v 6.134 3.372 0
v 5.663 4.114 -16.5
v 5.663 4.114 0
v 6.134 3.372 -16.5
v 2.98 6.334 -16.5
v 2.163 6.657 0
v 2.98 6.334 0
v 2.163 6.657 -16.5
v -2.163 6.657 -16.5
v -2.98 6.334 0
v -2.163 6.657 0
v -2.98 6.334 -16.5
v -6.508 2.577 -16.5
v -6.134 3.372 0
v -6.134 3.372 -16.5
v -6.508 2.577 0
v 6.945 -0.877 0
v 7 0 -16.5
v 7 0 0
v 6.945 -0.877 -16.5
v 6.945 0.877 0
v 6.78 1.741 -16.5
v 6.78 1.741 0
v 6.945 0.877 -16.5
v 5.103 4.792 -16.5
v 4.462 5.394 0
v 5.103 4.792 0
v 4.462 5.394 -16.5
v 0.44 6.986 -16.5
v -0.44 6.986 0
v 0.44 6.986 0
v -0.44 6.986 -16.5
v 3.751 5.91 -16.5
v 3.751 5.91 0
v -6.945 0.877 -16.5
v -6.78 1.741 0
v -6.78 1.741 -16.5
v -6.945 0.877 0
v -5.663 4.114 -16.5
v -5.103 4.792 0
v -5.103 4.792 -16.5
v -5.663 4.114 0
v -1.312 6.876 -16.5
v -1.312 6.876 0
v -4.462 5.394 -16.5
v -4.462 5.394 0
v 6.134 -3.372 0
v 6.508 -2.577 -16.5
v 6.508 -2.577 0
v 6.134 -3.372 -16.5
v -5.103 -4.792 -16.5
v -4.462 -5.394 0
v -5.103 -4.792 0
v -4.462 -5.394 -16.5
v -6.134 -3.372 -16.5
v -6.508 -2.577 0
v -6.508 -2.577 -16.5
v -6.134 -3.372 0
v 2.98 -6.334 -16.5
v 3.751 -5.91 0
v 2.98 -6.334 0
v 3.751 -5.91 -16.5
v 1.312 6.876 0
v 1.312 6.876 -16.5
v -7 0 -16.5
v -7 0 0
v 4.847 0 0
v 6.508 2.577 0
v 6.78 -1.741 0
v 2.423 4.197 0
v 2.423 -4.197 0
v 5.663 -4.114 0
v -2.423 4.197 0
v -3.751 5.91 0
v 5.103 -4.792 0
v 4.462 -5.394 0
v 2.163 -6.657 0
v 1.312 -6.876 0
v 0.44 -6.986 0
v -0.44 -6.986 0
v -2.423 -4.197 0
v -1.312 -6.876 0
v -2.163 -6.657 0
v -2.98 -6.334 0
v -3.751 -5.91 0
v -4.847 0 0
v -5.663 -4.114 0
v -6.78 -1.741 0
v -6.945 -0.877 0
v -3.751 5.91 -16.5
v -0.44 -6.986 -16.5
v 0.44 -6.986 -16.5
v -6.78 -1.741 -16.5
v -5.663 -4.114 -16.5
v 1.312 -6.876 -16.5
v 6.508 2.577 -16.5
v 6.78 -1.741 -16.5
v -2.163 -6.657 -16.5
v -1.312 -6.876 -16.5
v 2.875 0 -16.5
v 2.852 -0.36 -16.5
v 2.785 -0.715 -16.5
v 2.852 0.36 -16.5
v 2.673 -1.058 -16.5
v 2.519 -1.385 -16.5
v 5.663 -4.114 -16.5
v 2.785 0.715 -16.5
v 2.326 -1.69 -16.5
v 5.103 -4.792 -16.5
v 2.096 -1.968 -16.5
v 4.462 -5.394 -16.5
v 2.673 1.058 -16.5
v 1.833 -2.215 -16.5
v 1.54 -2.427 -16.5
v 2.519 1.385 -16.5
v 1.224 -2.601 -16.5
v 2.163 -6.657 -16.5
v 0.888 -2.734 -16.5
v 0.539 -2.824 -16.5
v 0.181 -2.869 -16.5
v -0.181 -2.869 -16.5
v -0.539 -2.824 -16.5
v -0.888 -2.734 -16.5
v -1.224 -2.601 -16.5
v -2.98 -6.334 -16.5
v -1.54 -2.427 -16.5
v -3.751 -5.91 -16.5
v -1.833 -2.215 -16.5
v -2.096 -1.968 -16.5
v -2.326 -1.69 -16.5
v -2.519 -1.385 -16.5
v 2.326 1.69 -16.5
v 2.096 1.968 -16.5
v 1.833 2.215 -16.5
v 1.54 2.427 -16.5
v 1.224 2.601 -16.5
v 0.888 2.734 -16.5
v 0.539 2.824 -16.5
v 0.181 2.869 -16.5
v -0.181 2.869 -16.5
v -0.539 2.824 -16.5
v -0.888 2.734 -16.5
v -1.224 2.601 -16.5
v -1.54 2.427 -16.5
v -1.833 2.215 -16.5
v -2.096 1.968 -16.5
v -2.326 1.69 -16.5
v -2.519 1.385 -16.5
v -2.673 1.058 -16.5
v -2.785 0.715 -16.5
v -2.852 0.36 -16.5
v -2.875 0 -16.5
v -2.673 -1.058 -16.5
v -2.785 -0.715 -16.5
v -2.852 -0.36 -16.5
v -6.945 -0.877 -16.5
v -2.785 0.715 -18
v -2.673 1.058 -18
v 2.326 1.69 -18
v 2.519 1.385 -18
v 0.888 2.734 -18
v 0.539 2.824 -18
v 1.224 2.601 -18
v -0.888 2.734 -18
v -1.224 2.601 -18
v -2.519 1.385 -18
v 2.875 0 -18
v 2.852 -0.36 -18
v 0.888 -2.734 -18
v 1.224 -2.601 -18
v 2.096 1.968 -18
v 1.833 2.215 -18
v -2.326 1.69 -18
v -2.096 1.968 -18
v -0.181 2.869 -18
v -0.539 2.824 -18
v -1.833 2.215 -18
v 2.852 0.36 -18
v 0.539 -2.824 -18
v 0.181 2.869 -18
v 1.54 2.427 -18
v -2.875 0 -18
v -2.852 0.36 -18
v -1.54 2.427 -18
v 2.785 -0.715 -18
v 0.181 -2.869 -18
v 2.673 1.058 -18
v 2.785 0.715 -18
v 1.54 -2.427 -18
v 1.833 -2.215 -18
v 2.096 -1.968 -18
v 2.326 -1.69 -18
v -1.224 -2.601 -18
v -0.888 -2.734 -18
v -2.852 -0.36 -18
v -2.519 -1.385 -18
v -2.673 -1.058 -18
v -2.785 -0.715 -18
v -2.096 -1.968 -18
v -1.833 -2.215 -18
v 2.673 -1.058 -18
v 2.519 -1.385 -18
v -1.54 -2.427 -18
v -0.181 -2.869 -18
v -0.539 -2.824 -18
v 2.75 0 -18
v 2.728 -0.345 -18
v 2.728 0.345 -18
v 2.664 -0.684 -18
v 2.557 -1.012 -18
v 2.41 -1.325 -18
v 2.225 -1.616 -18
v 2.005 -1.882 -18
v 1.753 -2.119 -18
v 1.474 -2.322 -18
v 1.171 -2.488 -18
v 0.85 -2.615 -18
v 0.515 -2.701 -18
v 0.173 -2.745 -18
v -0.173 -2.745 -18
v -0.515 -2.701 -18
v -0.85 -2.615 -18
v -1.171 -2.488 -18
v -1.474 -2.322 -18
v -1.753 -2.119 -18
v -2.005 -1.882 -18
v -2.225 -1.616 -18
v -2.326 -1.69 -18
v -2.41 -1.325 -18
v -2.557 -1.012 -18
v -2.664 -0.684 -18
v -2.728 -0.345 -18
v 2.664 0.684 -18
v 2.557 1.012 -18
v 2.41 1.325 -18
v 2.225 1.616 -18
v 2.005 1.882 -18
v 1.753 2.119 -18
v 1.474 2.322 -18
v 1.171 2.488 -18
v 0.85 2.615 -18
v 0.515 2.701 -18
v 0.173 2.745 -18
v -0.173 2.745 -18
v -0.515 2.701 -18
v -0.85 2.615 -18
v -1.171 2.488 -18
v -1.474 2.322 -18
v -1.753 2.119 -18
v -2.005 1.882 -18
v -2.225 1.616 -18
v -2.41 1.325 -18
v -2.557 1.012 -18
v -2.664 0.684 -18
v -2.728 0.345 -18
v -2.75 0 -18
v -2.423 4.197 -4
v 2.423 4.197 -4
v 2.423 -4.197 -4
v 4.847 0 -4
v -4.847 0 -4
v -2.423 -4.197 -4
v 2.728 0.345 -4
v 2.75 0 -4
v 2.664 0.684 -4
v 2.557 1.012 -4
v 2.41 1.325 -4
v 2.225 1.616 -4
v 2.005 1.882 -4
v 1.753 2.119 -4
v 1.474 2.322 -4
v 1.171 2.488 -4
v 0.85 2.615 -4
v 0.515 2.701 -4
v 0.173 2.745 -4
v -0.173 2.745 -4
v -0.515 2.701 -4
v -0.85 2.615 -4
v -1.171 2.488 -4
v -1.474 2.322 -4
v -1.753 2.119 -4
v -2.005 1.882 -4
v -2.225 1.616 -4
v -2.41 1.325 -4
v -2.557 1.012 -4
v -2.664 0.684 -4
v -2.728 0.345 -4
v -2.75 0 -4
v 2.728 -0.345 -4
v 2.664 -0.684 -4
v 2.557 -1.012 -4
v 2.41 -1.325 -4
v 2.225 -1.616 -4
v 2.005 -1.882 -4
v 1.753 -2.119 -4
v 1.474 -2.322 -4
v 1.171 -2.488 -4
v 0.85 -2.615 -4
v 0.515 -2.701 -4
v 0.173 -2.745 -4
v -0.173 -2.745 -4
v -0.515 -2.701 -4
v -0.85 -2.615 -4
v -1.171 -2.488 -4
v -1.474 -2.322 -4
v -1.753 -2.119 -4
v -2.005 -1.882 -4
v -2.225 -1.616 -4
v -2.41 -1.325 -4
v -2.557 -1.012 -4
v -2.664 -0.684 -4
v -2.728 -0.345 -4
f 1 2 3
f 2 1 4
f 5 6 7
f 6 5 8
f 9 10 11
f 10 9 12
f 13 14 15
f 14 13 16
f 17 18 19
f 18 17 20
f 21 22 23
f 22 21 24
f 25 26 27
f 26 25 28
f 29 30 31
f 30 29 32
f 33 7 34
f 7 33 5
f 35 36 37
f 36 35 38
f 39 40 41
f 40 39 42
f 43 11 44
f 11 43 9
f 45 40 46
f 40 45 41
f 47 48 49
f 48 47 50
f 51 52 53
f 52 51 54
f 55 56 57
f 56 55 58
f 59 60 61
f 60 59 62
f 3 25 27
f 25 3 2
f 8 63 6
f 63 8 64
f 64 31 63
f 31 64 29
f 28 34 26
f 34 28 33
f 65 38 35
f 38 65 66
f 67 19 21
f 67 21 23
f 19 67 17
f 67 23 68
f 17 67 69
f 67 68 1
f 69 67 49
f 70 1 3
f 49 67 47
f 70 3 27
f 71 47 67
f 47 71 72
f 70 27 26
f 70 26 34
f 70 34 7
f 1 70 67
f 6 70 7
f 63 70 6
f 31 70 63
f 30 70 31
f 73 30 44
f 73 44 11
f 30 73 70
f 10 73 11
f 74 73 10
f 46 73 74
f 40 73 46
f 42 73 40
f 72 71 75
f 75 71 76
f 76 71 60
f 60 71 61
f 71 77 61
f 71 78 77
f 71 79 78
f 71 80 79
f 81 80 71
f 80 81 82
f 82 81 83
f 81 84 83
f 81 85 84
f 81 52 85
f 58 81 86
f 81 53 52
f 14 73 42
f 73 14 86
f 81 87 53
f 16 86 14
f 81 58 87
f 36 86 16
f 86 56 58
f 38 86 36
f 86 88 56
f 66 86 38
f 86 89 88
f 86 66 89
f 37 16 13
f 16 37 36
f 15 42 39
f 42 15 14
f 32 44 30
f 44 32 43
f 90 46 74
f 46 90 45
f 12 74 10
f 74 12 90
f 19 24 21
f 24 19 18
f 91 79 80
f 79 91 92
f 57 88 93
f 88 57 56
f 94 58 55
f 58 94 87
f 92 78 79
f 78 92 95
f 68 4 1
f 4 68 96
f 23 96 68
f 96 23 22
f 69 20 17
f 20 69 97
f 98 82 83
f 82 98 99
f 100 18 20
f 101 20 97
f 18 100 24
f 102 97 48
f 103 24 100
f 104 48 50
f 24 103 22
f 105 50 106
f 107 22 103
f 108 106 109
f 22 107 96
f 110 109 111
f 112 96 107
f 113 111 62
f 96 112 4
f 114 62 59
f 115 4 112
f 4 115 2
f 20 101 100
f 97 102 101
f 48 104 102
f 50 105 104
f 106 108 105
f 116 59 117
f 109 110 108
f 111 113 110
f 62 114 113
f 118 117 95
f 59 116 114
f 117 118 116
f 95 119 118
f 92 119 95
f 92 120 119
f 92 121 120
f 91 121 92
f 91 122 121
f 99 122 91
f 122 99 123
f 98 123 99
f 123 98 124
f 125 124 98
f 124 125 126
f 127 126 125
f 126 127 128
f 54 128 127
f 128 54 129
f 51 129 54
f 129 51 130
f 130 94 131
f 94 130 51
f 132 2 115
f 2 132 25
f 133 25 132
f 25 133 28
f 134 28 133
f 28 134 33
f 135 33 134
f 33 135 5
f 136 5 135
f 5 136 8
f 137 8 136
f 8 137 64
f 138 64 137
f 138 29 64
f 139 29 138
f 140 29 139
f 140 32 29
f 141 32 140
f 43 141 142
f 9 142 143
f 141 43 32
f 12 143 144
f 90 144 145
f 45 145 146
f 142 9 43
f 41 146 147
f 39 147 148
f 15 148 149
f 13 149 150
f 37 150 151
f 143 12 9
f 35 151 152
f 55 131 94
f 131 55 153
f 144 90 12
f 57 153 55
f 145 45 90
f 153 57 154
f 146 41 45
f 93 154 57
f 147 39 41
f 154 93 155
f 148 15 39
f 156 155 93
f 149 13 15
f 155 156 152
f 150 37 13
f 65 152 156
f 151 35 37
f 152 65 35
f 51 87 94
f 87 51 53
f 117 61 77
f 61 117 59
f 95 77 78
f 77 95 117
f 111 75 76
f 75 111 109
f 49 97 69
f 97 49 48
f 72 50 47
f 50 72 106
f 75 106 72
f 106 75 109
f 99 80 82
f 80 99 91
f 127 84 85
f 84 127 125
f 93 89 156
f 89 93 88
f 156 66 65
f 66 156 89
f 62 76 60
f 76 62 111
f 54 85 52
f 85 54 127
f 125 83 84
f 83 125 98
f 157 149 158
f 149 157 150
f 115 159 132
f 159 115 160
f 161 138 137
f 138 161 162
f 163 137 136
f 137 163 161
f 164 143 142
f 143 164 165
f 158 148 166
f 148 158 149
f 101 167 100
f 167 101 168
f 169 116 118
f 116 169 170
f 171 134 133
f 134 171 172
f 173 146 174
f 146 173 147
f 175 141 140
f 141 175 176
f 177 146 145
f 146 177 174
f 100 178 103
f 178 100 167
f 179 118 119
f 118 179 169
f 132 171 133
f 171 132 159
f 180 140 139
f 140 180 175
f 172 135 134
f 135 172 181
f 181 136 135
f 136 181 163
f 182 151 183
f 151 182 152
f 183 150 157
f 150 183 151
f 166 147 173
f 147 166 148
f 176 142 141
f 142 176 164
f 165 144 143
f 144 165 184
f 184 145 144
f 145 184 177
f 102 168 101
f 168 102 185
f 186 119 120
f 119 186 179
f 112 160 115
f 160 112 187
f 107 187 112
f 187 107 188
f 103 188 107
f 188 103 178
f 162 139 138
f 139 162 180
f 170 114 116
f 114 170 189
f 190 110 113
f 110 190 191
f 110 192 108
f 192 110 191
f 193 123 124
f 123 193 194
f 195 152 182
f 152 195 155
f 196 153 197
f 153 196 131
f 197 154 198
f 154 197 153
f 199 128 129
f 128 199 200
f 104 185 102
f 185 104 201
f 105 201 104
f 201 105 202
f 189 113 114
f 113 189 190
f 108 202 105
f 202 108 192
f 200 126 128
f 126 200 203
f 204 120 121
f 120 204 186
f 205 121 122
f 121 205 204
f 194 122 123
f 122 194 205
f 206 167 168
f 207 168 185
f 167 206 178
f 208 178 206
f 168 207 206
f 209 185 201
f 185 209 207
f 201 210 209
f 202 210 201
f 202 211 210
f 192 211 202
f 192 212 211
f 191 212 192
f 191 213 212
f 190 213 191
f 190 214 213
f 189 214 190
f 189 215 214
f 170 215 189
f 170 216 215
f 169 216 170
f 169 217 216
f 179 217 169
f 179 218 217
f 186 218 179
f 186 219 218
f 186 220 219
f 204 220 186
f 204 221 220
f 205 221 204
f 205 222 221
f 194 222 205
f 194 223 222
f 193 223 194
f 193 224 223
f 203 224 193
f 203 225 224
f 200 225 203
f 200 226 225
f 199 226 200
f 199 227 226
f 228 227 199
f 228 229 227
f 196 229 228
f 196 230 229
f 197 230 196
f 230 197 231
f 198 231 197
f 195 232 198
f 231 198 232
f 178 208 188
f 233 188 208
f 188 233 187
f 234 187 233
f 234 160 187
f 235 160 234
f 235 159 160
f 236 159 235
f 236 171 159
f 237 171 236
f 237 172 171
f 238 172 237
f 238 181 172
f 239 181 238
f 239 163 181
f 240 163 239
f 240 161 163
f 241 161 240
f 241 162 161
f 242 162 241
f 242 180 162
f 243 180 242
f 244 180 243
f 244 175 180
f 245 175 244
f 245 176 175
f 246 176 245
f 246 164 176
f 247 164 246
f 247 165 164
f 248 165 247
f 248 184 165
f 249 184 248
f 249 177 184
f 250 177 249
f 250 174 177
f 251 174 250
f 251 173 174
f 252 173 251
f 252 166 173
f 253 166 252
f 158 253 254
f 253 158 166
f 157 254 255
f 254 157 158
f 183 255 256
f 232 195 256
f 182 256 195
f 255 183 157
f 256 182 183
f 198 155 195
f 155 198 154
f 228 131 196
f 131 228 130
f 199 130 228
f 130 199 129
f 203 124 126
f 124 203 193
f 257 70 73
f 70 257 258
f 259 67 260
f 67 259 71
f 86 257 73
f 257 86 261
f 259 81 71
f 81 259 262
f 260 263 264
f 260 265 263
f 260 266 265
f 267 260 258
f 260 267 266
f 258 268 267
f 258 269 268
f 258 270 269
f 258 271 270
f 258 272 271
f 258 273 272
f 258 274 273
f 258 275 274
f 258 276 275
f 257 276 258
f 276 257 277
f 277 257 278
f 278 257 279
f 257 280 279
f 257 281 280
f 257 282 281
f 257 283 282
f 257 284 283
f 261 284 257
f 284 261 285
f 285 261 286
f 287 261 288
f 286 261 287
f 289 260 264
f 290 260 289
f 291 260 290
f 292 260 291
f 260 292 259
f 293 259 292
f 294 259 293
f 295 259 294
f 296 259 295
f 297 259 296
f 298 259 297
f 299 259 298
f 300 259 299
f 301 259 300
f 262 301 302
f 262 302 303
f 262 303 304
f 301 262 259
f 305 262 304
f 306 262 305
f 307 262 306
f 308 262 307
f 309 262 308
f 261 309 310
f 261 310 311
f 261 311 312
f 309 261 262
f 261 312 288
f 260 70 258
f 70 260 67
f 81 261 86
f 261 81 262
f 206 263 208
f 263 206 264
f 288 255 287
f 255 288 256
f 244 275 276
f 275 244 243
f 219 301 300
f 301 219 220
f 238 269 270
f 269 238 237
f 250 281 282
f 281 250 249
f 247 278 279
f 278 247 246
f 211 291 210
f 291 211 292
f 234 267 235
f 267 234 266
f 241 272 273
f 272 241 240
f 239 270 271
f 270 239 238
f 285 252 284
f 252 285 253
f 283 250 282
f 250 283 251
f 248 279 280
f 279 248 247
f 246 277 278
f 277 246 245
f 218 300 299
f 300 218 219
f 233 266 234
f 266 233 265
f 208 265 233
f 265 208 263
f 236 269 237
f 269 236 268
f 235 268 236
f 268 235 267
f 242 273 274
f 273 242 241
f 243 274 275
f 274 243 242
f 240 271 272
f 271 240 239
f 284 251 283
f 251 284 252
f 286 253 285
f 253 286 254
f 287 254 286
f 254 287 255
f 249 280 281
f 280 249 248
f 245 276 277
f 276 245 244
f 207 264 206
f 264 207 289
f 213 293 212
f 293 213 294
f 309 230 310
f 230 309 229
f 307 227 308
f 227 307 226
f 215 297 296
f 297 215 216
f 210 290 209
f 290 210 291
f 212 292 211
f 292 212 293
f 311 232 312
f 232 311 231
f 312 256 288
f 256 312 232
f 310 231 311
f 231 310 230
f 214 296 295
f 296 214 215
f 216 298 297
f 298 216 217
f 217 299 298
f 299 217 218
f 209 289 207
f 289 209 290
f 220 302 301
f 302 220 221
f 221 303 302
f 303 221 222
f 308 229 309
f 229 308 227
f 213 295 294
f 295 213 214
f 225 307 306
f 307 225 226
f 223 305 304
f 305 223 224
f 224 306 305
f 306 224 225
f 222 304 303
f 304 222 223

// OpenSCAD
$fn = 50;


difference() {
	union() {
		translate(v = [0, 0, -16.5000000000]) {
			cylinder(h = 16.5000000000, r = 7.0000000000);
		}
		#translate(v = [0, 0, -18.0000000000]) {
			cylinder(h = 18, r = 2.8750000000);
		}
	}
	union() {
		translate(v = [0, 0, 0]) {
			rotate(a = [0, 0, 0]) {
				difference() {
					union() {
						translate(v = [0, 0, -4]) {
							linear_extrude(height = 4) {
								polygon(points = [[4.8468000000, 0.0000000000], [2.4234000000, 4.1974519271], [-2.4234000000, 4.1974519271], [-4.8468000000, 0.0000000000], [-2.4234000000, -4.1974519271], [2.4234000000, -4.1974519271]]);
							}
						}
					}
					union();
				}
			}
		}
		#translate(v = [0, 0, -100.0000000000]) {
			cylinder(h = 200, r = 2.7500000000);
		}
	}
}
